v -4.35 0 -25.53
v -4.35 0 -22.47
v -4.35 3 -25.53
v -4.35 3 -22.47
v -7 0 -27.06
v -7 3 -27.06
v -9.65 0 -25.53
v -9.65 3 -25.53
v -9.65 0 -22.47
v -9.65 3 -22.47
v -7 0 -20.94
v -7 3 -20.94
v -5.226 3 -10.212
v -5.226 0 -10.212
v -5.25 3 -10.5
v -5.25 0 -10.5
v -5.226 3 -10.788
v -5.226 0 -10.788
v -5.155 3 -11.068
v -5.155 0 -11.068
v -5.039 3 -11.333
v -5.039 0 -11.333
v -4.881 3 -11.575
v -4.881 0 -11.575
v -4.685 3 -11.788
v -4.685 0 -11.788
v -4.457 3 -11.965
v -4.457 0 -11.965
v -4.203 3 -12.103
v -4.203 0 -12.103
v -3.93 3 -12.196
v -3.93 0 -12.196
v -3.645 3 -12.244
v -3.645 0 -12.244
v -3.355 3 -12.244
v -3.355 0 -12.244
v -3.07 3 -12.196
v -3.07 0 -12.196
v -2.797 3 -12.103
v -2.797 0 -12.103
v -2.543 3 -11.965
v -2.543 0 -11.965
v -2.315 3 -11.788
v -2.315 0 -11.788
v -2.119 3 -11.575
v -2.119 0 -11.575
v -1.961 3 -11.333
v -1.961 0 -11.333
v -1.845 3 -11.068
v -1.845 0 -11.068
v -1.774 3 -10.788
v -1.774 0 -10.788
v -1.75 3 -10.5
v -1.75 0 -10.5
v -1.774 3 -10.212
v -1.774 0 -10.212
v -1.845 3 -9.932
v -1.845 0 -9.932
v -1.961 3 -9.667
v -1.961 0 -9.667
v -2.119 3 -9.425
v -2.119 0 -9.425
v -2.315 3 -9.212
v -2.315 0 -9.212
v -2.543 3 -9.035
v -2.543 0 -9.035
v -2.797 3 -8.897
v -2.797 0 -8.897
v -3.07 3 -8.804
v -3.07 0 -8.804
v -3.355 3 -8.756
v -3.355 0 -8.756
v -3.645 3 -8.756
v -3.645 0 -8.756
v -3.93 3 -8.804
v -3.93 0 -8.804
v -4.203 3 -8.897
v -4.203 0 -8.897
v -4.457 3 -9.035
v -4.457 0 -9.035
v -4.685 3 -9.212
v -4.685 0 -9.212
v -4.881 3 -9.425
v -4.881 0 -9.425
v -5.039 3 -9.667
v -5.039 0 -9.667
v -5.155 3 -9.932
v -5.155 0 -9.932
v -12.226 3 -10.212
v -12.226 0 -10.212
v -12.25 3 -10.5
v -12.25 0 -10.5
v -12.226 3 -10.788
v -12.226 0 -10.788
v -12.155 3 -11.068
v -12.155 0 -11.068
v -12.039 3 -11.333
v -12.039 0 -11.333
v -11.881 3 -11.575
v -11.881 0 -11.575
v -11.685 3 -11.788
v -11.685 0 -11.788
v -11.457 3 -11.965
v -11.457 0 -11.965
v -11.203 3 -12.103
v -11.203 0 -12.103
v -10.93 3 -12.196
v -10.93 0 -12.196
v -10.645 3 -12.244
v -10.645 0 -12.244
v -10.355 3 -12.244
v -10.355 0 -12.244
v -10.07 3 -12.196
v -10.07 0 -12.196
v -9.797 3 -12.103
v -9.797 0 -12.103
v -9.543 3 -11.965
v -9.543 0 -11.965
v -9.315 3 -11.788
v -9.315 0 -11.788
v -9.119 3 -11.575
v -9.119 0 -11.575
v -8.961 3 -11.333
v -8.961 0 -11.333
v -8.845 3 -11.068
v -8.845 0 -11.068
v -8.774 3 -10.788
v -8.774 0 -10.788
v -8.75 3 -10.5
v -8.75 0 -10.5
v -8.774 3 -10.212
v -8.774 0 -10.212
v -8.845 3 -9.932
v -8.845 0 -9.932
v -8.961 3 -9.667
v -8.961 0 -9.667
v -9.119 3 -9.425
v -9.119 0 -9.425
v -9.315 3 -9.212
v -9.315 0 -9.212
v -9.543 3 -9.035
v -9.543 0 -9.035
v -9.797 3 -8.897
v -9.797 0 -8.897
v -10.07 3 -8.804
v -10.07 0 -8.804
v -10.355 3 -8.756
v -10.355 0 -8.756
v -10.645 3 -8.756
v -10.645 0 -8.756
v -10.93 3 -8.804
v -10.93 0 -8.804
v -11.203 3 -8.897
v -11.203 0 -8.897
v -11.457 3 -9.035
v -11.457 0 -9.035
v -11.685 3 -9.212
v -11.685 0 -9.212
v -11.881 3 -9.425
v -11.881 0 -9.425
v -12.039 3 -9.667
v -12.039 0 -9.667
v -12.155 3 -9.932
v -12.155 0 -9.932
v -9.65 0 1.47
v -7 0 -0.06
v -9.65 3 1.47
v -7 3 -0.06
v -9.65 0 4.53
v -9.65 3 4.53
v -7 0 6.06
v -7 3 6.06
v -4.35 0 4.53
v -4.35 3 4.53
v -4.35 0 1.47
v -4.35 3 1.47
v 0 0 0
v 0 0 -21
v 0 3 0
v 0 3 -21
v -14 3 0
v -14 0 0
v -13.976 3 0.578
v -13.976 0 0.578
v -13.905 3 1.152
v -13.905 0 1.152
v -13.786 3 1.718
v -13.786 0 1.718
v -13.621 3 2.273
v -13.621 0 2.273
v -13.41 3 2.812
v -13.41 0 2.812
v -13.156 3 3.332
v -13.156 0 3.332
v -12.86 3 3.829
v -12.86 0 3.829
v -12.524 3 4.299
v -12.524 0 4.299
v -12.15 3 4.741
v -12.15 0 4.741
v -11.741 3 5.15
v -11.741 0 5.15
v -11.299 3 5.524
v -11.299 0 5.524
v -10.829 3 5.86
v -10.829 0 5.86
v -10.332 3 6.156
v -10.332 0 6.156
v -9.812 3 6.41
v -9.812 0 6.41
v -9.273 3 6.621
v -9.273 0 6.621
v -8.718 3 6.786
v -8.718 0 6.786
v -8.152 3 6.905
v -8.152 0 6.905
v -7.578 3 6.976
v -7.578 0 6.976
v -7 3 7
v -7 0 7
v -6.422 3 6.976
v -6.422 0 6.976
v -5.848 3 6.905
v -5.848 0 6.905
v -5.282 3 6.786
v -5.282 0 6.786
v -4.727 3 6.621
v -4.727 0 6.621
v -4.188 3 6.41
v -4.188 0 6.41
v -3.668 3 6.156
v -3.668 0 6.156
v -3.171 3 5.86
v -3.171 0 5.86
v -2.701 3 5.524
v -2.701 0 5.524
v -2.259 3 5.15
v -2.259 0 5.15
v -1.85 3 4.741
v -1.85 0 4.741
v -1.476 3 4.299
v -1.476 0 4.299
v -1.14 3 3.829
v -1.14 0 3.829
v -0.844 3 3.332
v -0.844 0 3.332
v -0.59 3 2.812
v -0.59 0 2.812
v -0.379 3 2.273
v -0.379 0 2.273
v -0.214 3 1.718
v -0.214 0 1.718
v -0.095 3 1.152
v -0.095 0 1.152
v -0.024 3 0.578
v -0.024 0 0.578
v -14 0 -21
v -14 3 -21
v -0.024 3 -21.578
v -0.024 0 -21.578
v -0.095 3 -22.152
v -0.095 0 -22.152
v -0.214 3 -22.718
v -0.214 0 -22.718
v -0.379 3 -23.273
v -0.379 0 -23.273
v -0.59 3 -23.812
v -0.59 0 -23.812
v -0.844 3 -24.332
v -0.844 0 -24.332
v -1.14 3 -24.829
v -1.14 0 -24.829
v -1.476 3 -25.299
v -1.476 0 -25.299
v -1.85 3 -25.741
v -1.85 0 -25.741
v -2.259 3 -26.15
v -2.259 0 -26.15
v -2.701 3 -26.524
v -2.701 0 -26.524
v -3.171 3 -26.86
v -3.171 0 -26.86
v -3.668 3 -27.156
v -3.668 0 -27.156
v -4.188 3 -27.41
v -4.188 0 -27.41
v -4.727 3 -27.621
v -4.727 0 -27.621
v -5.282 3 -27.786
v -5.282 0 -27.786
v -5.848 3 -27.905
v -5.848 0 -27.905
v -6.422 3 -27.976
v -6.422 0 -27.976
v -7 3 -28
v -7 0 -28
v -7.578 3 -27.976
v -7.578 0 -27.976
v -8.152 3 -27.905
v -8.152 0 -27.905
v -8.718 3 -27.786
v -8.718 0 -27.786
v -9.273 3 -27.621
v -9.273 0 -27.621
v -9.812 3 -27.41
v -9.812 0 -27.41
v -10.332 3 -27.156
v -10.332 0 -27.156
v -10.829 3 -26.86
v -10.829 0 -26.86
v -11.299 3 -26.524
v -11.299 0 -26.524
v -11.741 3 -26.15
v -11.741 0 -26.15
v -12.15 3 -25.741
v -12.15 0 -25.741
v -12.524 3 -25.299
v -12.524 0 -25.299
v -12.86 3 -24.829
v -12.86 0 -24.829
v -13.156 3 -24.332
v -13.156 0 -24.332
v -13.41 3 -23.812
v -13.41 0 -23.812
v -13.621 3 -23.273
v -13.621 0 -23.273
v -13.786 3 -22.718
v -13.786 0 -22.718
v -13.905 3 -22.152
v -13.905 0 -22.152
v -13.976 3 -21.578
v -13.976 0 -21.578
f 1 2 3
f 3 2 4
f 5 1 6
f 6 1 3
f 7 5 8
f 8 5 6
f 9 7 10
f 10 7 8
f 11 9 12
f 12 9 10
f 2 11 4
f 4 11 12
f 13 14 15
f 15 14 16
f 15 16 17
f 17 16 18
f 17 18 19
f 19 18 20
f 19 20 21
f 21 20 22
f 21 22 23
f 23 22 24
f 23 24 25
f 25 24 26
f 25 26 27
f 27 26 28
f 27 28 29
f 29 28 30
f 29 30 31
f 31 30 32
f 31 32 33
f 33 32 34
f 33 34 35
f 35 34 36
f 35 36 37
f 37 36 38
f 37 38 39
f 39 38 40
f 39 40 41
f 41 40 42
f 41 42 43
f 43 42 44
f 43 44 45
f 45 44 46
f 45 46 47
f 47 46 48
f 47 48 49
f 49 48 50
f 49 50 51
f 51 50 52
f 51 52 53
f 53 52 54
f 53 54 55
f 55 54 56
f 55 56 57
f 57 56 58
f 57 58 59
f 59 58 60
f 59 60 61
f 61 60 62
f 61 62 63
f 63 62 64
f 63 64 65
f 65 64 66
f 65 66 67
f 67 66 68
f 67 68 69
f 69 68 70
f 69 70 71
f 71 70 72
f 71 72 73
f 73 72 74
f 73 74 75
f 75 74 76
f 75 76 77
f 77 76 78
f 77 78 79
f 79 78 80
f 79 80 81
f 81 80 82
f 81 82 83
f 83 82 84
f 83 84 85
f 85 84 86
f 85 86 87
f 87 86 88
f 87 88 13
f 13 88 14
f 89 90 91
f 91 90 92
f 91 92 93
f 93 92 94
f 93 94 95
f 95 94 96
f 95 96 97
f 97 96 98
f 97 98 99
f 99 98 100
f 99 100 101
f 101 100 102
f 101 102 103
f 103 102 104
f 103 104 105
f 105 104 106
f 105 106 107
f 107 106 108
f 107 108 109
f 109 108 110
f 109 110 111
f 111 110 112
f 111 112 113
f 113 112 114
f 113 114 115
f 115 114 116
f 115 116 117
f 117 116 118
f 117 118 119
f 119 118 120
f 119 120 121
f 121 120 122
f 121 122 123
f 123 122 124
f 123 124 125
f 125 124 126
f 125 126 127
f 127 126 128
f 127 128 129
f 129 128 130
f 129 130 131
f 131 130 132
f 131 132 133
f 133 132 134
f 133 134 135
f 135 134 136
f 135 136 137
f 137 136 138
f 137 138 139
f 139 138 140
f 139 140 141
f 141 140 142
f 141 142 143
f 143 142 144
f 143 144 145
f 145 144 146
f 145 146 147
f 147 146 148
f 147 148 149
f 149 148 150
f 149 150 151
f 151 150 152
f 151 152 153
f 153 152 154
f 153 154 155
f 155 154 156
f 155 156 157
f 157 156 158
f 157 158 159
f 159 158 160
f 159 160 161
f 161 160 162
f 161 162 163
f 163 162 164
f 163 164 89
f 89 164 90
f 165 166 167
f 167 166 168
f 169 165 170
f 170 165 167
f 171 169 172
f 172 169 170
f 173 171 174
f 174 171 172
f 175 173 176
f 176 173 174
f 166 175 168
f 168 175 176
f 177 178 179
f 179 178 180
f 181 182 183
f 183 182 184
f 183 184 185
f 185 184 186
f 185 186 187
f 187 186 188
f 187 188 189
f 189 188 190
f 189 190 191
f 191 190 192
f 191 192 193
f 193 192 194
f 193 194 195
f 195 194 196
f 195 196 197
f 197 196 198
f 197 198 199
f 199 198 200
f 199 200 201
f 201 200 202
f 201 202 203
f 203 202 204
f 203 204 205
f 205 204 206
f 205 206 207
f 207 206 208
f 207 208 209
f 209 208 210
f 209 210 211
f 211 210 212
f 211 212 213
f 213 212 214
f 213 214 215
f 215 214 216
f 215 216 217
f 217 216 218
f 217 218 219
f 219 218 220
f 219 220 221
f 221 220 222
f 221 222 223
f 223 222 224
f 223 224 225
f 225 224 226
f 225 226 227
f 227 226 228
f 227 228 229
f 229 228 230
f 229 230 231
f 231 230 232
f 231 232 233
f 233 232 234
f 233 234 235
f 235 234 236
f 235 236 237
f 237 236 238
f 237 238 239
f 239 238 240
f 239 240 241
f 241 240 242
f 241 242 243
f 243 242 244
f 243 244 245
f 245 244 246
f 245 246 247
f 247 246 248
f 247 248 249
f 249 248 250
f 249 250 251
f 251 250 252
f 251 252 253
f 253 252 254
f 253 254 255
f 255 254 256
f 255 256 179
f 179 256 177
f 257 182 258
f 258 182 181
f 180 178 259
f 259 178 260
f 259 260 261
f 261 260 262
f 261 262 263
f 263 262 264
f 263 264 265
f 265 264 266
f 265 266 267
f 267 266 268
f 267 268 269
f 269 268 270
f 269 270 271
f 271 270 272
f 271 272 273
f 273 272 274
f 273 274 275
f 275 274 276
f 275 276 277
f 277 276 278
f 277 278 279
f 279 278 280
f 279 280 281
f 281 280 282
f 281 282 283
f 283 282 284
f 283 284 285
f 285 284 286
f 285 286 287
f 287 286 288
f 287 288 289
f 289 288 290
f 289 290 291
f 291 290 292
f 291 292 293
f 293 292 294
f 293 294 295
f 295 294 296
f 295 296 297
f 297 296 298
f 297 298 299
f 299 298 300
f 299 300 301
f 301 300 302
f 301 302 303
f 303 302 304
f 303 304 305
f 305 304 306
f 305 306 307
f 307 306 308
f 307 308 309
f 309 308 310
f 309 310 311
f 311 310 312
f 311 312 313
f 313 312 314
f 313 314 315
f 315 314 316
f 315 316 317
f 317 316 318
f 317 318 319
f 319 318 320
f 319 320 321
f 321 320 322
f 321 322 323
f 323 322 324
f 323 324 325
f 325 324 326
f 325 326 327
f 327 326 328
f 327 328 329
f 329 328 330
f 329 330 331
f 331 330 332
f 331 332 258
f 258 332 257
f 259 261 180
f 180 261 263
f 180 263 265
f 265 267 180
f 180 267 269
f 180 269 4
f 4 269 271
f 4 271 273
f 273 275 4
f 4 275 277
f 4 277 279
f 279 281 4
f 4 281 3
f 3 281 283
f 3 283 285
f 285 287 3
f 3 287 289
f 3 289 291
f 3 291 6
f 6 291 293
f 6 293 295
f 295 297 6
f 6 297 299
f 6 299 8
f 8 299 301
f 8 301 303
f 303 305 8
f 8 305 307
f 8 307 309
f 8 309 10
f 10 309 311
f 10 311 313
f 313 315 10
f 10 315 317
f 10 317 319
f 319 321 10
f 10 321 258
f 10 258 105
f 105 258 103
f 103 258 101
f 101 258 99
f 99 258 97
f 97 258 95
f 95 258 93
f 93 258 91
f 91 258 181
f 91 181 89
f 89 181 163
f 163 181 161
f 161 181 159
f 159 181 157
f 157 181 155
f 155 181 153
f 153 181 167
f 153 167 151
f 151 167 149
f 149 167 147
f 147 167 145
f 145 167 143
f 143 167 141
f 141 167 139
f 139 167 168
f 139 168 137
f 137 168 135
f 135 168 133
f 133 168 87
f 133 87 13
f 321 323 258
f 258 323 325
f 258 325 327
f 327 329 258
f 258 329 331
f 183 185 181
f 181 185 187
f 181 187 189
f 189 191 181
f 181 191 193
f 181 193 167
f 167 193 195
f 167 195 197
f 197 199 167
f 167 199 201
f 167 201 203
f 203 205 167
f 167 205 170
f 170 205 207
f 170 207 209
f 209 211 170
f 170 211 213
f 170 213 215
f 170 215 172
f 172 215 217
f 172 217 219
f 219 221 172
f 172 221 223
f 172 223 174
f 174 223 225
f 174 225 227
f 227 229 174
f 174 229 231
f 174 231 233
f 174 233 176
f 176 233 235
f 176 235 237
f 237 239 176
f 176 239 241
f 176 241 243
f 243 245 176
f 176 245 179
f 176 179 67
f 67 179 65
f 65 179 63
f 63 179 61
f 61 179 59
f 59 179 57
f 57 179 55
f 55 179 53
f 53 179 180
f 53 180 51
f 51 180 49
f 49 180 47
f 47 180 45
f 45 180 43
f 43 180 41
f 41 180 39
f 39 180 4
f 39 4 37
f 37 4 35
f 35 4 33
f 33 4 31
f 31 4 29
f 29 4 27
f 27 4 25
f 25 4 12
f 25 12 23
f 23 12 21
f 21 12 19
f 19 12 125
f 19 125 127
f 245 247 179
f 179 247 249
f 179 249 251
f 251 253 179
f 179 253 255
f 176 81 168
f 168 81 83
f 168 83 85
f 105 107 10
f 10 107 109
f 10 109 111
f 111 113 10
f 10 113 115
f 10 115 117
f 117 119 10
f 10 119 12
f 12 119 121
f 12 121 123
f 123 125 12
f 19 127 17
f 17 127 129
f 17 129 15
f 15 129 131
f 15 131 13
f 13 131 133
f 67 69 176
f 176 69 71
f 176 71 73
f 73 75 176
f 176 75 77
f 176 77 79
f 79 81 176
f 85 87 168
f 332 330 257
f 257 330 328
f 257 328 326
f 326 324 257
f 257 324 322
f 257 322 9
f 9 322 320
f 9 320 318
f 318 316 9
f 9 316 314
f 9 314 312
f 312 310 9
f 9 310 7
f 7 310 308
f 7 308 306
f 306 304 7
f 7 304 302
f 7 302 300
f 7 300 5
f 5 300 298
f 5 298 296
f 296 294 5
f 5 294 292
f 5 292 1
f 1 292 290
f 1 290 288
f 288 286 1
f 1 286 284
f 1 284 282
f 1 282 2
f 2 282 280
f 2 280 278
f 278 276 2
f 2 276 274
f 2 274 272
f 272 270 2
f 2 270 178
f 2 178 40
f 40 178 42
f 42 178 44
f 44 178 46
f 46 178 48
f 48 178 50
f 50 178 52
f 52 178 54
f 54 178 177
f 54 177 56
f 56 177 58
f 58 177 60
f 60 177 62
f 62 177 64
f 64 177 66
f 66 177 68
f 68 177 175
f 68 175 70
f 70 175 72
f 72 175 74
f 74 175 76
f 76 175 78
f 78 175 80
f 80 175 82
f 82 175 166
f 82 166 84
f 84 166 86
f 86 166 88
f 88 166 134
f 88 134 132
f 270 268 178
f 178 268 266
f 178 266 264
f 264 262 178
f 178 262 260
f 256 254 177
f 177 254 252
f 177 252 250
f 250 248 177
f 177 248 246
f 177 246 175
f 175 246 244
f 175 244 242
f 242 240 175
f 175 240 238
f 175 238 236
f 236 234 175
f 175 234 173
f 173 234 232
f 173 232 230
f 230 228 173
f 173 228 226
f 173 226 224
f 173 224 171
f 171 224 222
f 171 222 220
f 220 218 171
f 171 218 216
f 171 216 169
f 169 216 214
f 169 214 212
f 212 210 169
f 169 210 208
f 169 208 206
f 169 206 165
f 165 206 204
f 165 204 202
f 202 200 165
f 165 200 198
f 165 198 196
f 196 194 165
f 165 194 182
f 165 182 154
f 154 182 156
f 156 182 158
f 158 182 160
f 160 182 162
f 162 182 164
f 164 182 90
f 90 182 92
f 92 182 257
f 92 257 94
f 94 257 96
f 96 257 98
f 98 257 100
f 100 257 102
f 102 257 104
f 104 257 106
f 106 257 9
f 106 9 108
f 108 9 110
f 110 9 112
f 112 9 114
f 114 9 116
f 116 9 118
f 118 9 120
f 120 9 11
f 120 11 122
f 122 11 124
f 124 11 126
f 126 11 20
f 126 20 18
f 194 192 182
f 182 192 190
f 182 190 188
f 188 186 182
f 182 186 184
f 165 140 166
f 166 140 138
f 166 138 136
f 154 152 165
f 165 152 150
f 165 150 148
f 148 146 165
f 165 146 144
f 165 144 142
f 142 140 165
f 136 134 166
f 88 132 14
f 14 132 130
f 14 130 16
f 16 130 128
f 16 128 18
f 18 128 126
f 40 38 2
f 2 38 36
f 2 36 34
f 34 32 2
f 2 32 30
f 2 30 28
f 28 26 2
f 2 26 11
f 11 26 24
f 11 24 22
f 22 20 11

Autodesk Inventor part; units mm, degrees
ref_plane "YZ Plane" through (0, 0, 0) normal (1, 0, 0) x (0, 1, 0)
ref_plane "XZ Plane" through (0, 0, 0) normal (0, 1, 0) x (-1, 0, 0)
ref_plane "XY Plane" through (0, 0, 0) normal (0, 0, 1) x (1, 0, 0)
sketch "Sketch1" plane through (0, 0, 0) normal (0, 1, 0) x (-1, 0, 0)
  line L0 (0, 0) -> (14, 0)
  line L1 (14, 0) -> (14, -21)
  line L2 (14, -21) -> (0, -21)
  line L3 (0, -21) -> (0, 0)
  circle A0 centre (7, 3) radius 2.65
  circle A1 centre (7, -24) radius 2.65
  circle A2 centre (7, 0) radius 7
  circle A3 centre (7, -21) radius 7
  line L4 (9.65, 1.47) -> (7, -0.06)
  line L5 (7, -0.06) -> (4.35, 1.47)
  line L6 (4.35, 1.47) -> (4.35, 4.53)
  line L7 (4.35, 4.53) -> (7, 6.06)
  line L8 (7, 6.06) -> (9.65, 4.53)
  line L9 (9.65, 4.53) -> (9.65, 1.47)
  line L10 (9.65, -25.53) -> (7, -27.06)
  line L11 (7, -27.06) -> (4.35, -25.53)
  line L12 (4.35, -25.53) -> (4.35, -22.47)
  line L13 (4.35, -22.47) -> (7, -20.94)
  line L14 (7, -20.94) -> (9.65, -22.47)
  line L15 (9.65, -22.47) -> (9.65, -25.53)
  line L16 (14, -10.5) -> (0, -10.5) construction
  circle A4 centre (10.5, -10.5) radius 1.75
  circle A5 centre (3.5, -10.5) radius 1.75
  point P0 (9.65, 3)
  point P1 (9.65, -24)
  dimension "d2" = 5.3
  dimension "d3" = 5.3
  dimension "d0" = 14
  dimension "d1" = 21
  dimension "d4" = 3
  dimension "d5" = 3
  dimension "d6" = 3.5
  dimension "d7" = 3.5
  dimension "d8" = 3.5
  dimension "d9" = 3.5
extrude "Extrusion1" add sketch "Sketch1" along normal blind 3 contours A2 L0 L4 L9 L8 L7 L6 L5 | A2 L1 A3 L3 | L0 L5 L4 A2 | A3 L2 L14 L13 | L2 L13 L12 L11 L10 L15 L14 A3
properties part number "Stationary bracket aligner_3DPrint"
